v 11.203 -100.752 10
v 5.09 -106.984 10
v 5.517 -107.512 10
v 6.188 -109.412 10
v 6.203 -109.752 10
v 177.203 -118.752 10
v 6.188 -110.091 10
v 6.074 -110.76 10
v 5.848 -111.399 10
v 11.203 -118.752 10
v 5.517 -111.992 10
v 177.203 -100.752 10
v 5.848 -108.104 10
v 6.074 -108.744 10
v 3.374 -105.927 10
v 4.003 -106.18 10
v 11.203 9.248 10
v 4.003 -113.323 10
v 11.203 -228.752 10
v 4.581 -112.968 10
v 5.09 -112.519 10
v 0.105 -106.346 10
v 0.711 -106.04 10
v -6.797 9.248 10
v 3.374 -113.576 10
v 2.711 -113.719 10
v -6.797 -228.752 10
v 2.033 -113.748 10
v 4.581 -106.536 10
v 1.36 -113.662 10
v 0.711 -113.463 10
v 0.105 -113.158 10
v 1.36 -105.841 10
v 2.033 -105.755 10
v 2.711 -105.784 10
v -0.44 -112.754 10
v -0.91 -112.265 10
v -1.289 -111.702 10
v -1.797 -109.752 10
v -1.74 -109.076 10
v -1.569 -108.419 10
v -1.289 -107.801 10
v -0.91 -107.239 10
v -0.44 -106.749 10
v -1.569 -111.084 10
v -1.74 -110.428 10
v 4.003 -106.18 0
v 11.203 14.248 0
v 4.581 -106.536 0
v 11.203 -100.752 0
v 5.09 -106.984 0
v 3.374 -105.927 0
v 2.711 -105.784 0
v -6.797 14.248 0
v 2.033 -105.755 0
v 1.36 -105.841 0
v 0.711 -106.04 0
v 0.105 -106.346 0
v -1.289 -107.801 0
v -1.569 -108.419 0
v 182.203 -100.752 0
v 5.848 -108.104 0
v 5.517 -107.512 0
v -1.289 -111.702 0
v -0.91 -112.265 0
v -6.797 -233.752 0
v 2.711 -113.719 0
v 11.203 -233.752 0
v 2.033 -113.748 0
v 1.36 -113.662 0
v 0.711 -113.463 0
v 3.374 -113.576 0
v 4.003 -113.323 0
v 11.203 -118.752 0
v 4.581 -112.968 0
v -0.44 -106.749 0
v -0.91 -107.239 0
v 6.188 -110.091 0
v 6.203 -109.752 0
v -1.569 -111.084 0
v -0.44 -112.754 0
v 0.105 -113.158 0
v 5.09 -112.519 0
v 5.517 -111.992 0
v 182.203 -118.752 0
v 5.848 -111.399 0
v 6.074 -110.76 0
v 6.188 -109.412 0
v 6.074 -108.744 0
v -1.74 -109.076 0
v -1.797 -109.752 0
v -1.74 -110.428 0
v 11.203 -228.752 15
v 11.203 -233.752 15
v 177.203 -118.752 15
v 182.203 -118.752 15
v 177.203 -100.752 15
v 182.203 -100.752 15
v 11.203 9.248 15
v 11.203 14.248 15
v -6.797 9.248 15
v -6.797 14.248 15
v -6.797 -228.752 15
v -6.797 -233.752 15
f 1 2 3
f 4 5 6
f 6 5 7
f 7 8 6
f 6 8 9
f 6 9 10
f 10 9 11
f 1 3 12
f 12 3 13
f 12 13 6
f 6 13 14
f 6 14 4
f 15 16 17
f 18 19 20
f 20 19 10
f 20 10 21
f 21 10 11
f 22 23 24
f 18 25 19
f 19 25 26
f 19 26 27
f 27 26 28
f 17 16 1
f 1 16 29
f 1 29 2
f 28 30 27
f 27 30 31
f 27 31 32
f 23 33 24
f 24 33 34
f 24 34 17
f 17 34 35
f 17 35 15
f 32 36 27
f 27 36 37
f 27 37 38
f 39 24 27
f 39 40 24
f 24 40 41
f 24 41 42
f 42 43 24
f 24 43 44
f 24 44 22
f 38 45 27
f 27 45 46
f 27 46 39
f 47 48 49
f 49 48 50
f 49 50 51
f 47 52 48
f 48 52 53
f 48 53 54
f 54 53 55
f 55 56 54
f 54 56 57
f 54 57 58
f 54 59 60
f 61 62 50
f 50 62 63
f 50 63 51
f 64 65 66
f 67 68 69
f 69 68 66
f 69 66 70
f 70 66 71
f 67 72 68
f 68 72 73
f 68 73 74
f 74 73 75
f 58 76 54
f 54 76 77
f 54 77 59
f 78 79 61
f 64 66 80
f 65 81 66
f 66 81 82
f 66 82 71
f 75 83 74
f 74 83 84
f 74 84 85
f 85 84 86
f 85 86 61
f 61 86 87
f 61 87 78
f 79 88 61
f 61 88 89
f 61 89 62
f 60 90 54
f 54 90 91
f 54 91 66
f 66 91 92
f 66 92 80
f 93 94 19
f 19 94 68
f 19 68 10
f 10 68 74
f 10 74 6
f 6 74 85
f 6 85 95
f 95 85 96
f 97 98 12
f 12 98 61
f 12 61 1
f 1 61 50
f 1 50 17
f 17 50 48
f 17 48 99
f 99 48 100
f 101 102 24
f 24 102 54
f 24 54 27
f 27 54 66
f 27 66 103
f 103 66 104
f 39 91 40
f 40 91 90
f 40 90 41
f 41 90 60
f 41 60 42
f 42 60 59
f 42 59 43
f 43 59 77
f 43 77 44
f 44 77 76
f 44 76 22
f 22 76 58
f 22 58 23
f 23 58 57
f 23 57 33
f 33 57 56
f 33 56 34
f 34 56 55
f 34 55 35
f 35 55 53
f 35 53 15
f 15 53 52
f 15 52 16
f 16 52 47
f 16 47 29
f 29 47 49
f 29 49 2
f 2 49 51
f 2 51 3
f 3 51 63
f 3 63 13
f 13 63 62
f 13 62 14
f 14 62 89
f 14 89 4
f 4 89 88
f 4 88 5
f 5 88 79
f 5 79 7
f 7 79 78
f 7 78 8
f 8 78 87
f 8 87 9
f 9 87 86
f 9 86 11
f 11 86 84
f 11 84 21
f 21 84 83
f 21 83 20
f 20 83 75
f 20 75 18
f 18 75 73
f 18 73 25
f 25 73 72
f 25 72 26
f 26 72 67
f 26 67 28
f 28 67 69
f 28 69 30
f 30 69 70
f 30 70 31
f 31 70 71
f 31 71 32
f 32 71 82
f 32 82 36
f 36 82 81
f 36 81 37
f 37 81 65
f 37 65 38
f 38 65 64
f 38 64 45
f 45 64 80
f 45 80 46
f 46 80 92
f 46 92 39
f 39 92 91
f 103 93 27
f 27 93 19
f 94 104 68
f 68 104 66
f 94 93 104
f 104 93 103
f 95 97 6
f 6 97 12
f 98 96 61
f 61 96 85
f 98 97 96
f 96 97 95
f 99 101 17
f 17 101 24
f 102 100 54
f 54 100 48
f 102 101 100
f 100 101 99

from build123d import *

# Parameters (mm, degrees)
SKETCH1_R           = 4
BOSS_EXTRUDE1_DEPTH = 10
SKETCH2_W           = 18
SKETCH2_H           = 5
SKETCH2_W_2         = 5
SKETCH2_H_2         = 18
BOSS_EXTRUDE2_DEPTH = 15


with BuildPart() as part:
    # Sketch1 → Boss-Extrude1 (new body)
    with BuildSketch(Plane.XY):
        Polygon((11.202614379, -118.751633987), (177.202614379, -118.751633987), (177.202614379, -100.751633987), (11.202614379, -100.751633987), (11.202614379, 9.248366013), (-6.797385621, 9.248366013), (-6.797385621, -228.751633987), (11.202614379, -228.751633987), align=None)
        with Locations((2.202614379, -109.751633987)):
            Circle(SKETCH1_R, mode=Mode.SUBTRACT)
    extrude(amount=BOSS_EXTRUDE1_DEPTH)

    # Sketch2 → Boss-Extrude2 (add)
    with BuildSketch(Plane(origin=(0, 0, 0), x_dir=(-1, 0, 0), z_dir=(0, 0, -1))):
        with Locations((-2.202614379, -231.251633987)):
            Rectangle(SKETCH2_W, SKETCH2_H)
        with Locations((-179.702614379, -109.751633987)):
            Rectangle(SKETCH2_W_2, SKETCH2_H_2)
        with Locations((-2.202614379, 11.748366013)):
            Rectangle(SKETCH2_W, SKETCH2_H)
    extrude(amount=-BOSS_EXTRUDE2_DEPTH)


solid = part.part
